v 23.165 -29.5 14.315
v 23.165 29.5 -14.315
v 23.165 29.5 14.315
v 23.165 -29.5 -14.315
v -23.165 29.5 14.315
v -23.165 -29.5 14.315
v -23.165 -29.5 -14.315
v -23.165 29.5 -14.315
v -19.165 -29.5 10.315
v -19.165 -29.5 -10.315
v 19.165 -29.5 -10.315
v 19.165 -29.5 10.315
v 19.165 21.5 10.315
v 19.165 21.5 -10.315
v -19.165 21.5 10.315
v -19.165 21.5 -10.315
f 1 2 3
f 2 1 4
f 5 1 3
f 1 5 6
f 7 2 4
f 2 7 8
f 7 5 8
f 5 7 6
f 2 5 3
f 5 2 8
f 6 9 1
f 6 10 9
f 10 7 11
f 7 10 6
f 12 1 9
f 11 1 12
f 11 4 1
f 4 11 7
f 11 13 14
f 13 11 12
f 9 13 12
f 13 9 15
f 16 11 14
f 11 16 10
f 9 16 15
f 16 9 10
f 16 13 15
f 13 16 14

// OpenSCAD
// slip cover for dwalt atomic laser range finder DW055PL.
// it protects LCD screen and on/off button

// you want rounded corners? Get a file out of your toolbox you lazy cow.

inside_x = 38.33;
inside_y = 51;
inside_z = 20.63;    // switch is fatest

thick = 8;  // 5mm walls should protect it from my hammer :(

outside_x = inside_x + thick;
outside_y = inside_y + thick;    
outside_z = inside_z + thick;

difference()
{
    color("RED", .3) cube ([outside_x, outside_y, outside_z], true);
    translate ([0, -thick/2, 0])
    cube ([inside_x, inside_y, inside_z], true);
}
